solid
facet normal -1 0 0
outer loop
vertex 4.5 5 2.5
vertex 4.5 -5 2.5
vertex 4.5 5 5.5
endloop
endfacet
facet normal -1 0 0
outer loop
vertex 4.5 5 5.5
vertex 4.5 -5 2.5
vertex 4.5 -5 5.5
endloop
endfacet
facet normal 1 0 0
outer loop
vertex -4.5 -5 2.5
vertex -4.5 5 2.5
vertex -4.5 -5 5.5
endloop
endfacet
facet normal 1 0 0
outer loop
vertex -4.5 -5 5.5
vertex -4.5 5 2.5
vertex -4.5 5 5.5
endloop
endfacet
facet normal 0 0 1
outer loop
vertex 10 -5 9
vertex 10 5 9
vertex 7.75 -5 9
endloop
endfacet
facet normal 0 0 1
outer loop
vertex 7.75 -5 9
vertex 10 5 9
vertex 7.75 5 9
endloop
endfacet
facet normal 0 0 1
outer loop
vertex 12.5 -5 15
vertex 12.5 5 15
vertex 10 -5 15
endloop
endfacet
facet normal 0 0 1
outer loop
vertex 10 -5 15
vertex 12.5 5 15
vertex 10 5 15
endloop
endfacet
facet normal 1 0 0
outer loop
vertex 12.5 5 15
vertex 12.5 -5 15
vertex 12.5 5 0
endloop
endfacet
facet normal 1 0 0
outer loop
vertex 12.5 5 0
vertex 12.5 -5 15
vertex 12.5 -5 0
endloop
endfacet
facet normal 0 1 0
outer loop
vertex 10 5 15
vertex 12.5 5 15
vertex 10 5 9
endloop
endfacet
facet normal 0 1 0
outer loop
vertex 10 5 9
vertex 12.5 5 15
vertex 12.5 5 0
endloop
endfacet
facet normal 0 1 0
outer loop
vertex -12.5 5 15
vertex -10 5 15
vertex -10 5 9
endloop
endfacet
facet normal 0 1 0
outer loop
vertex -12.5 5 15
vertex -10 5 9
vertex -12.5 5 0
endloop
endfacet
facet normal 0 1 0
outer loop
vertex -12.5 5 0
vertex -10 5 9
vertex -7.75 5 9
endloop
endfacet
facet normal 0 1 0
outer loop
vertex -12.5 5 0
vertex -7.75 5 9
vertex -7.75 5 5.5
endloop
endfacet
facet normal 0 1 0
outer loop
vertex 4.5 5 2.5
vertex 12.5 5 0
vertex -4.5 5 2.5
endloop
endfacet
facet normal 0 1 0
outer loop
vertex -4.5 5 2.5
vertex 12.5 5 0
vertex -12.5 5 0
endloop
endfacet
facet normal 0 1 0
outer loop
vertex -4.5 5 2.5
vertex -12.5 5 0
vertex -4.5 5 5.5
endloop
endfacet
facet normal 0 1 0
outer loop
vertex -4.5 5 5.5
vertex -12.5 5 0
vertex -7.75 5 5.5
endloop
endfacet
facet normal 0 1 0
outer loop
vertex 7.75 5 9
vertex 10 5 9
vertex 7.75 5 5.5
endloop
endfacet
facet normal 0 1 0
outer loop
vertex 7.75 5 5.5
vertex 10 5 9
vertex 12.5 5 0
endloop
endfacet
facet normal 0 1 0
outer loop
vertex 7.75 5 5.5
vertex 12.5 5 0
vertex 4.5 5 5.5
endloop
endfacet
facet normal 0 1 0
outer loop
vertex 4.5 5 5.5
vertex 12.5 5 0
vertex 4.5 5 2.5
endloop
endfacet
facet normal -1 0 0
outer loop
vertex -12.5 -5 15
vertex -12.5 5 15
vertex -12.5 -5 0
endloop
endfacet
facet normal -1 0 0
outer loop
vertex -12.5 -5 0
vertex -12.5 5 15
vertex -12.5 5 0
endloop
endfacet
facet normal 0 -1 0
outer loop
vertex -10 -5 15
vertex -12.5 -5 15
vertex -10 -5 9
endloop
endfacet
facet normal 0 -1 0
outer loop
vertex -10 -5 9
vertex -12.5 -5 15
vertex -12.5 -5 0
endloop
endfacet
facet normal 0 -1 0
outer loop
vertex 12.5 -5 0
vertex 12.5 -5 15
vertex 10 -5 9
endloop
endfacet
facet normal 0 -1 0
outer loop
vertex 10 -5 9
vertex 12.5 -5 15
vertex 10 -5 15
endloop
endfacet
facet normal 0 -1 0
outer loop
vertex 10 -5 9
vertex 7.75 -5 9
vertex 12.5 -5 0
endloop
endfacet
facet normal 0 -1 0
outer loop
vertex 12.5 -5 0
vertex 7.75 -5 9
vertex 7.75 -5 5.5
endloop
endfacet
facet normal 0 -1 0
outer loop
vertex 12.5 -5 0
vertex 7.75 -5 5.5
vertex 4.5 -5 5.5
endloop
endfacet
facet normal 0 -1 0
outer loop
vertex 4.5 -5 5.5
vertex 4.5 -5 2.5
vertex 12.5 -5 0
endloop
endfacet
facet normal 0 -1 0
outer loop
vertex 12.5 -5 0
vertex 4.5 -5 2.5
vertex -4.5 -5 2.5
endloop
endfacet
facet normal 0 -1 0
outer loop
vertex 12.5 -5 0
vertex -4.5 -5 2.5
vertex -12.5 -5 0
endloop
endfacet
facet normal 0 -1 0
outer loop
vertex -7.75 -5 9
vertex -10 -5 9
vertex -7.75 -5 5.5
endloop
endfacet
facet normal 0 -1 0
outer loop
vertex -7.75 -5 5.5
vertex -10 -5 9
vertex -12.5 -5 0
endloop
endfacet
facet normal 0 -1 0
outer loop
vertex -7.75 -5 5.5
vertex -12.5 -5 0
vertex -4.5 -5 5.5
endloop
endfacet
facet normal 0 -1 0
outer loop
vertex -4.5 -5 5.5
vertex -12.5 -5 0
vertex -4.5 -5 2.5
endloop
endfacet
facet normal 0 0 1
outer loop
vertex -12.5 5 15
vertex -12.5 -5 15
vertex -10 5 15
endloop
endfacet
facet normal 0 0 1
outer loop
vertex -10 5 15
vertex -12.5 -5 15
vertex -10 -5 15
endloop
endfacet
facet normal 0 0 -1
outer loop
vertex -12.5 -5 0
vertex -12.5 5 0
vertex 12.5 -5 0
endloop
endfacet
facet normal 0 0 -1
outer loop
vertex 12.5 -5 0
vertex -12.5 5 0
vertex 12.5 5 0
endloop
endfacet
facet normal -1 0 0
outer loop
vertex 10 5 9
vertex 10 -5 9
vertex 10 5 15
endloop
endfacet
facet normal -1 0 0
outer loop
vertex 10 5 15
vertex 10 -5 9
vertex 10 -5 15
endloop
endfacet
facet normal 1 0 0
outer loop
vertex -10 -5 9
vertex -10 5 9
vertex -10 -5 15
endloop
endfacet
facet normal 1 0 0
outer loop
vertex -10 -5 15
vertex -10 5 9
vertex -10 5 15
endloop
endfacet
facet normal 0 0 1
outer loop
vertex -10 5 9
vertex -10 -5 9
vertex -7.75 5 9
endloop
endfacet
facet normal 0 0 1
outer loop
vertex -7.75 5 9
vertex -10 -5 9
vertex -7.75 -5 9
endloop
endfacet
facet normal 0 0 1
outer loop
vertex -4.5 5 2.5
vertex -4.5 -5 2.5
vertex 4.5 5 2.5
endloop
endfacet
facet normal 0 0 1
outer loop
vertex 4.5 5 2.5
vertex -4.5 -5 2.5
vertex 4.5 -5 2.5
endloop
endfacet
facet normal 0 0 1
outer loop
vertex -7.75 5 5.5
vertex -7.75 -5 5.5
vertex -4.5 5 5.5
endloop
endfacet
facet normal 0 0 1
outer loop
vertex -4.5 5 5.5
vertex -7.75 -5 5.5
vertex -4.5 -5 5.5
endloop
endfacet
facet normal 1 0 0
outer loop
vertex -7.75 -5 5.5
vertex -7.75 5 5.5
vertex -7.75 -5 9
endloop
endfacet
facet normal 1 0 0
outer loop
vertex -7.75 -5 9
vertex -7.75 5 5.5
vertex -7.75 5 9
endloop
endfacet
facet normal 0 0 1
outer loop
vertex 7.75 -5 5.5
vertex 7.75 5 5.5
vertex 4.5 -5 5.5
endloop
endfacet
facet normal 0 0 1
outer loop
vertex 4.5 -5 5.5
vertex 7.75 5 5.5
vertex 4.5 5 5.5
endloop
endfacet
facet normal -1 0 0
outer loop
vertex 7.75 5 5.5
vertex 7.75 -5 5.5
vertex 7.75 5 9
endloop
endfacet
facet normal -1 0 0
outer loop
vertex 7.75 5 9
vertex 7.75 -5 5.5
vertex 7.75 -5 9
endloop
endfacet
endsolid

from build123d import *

# Parameters (mm, degrees)
SKETCH1_W           = 25
SKETCH1_H           = 10
BOSS_EXTRUDE1_DEPTH = 15
SKETCH2_W           = 20
SKETCH2_H           = 10
CUT_EXTRUDE1_DEPTH  = 6
SKETCH3_W           = 9
SKETCH3_H           = 10
CUT_EXTRUDE2_DEPTH  = 6.5
SKETCH4_W           = 15.5
SKETCH4_H           = 10
CUT_EXTRUDE3_DEPTH  = 3.5


with BuildPart() as part:
    # Sketch1 → Boss-Extrude1 (new body)
    with BuildSketch(Plane.XY):
        Rectangle(SKETCH1_W, SKETCH1_H)
    extrude(amount=BOSS_EXTRUDE1_DEPTH)

    # Sketch2 → Cut-Extrude1 (cut)
    with BuildSketch(Plane.XY.offset(15)):
        Rectangle(SKETCH2_W, SKETCH2_H)
    extrude(amount=-CUT_EXTRUDE1_DEPTH, mode=Mode.SUBTRACT)

    # Sketch3 → Cut-Extrude2 (cut)
    with BuildSketch(Plane.XY.offset(9)):
        Rectangle(SKETCH3_W, SKETCH3_H)
    extrude(amount=-CUT_EXTRUDE2_DEPTH, mode=Mode.SUBTRACT)

    # Sketch4 → Cut-Extrude3 (cut)
    with BuildSketch(Plane.XY.offset(9)):
        Rectangle(SKETCH4_W, SKETCH4_H)
    extrude(amount=-CUT_EXTRUDE3_DEPTH, mode=Mode.SUBTRACT)


solid = part.part
